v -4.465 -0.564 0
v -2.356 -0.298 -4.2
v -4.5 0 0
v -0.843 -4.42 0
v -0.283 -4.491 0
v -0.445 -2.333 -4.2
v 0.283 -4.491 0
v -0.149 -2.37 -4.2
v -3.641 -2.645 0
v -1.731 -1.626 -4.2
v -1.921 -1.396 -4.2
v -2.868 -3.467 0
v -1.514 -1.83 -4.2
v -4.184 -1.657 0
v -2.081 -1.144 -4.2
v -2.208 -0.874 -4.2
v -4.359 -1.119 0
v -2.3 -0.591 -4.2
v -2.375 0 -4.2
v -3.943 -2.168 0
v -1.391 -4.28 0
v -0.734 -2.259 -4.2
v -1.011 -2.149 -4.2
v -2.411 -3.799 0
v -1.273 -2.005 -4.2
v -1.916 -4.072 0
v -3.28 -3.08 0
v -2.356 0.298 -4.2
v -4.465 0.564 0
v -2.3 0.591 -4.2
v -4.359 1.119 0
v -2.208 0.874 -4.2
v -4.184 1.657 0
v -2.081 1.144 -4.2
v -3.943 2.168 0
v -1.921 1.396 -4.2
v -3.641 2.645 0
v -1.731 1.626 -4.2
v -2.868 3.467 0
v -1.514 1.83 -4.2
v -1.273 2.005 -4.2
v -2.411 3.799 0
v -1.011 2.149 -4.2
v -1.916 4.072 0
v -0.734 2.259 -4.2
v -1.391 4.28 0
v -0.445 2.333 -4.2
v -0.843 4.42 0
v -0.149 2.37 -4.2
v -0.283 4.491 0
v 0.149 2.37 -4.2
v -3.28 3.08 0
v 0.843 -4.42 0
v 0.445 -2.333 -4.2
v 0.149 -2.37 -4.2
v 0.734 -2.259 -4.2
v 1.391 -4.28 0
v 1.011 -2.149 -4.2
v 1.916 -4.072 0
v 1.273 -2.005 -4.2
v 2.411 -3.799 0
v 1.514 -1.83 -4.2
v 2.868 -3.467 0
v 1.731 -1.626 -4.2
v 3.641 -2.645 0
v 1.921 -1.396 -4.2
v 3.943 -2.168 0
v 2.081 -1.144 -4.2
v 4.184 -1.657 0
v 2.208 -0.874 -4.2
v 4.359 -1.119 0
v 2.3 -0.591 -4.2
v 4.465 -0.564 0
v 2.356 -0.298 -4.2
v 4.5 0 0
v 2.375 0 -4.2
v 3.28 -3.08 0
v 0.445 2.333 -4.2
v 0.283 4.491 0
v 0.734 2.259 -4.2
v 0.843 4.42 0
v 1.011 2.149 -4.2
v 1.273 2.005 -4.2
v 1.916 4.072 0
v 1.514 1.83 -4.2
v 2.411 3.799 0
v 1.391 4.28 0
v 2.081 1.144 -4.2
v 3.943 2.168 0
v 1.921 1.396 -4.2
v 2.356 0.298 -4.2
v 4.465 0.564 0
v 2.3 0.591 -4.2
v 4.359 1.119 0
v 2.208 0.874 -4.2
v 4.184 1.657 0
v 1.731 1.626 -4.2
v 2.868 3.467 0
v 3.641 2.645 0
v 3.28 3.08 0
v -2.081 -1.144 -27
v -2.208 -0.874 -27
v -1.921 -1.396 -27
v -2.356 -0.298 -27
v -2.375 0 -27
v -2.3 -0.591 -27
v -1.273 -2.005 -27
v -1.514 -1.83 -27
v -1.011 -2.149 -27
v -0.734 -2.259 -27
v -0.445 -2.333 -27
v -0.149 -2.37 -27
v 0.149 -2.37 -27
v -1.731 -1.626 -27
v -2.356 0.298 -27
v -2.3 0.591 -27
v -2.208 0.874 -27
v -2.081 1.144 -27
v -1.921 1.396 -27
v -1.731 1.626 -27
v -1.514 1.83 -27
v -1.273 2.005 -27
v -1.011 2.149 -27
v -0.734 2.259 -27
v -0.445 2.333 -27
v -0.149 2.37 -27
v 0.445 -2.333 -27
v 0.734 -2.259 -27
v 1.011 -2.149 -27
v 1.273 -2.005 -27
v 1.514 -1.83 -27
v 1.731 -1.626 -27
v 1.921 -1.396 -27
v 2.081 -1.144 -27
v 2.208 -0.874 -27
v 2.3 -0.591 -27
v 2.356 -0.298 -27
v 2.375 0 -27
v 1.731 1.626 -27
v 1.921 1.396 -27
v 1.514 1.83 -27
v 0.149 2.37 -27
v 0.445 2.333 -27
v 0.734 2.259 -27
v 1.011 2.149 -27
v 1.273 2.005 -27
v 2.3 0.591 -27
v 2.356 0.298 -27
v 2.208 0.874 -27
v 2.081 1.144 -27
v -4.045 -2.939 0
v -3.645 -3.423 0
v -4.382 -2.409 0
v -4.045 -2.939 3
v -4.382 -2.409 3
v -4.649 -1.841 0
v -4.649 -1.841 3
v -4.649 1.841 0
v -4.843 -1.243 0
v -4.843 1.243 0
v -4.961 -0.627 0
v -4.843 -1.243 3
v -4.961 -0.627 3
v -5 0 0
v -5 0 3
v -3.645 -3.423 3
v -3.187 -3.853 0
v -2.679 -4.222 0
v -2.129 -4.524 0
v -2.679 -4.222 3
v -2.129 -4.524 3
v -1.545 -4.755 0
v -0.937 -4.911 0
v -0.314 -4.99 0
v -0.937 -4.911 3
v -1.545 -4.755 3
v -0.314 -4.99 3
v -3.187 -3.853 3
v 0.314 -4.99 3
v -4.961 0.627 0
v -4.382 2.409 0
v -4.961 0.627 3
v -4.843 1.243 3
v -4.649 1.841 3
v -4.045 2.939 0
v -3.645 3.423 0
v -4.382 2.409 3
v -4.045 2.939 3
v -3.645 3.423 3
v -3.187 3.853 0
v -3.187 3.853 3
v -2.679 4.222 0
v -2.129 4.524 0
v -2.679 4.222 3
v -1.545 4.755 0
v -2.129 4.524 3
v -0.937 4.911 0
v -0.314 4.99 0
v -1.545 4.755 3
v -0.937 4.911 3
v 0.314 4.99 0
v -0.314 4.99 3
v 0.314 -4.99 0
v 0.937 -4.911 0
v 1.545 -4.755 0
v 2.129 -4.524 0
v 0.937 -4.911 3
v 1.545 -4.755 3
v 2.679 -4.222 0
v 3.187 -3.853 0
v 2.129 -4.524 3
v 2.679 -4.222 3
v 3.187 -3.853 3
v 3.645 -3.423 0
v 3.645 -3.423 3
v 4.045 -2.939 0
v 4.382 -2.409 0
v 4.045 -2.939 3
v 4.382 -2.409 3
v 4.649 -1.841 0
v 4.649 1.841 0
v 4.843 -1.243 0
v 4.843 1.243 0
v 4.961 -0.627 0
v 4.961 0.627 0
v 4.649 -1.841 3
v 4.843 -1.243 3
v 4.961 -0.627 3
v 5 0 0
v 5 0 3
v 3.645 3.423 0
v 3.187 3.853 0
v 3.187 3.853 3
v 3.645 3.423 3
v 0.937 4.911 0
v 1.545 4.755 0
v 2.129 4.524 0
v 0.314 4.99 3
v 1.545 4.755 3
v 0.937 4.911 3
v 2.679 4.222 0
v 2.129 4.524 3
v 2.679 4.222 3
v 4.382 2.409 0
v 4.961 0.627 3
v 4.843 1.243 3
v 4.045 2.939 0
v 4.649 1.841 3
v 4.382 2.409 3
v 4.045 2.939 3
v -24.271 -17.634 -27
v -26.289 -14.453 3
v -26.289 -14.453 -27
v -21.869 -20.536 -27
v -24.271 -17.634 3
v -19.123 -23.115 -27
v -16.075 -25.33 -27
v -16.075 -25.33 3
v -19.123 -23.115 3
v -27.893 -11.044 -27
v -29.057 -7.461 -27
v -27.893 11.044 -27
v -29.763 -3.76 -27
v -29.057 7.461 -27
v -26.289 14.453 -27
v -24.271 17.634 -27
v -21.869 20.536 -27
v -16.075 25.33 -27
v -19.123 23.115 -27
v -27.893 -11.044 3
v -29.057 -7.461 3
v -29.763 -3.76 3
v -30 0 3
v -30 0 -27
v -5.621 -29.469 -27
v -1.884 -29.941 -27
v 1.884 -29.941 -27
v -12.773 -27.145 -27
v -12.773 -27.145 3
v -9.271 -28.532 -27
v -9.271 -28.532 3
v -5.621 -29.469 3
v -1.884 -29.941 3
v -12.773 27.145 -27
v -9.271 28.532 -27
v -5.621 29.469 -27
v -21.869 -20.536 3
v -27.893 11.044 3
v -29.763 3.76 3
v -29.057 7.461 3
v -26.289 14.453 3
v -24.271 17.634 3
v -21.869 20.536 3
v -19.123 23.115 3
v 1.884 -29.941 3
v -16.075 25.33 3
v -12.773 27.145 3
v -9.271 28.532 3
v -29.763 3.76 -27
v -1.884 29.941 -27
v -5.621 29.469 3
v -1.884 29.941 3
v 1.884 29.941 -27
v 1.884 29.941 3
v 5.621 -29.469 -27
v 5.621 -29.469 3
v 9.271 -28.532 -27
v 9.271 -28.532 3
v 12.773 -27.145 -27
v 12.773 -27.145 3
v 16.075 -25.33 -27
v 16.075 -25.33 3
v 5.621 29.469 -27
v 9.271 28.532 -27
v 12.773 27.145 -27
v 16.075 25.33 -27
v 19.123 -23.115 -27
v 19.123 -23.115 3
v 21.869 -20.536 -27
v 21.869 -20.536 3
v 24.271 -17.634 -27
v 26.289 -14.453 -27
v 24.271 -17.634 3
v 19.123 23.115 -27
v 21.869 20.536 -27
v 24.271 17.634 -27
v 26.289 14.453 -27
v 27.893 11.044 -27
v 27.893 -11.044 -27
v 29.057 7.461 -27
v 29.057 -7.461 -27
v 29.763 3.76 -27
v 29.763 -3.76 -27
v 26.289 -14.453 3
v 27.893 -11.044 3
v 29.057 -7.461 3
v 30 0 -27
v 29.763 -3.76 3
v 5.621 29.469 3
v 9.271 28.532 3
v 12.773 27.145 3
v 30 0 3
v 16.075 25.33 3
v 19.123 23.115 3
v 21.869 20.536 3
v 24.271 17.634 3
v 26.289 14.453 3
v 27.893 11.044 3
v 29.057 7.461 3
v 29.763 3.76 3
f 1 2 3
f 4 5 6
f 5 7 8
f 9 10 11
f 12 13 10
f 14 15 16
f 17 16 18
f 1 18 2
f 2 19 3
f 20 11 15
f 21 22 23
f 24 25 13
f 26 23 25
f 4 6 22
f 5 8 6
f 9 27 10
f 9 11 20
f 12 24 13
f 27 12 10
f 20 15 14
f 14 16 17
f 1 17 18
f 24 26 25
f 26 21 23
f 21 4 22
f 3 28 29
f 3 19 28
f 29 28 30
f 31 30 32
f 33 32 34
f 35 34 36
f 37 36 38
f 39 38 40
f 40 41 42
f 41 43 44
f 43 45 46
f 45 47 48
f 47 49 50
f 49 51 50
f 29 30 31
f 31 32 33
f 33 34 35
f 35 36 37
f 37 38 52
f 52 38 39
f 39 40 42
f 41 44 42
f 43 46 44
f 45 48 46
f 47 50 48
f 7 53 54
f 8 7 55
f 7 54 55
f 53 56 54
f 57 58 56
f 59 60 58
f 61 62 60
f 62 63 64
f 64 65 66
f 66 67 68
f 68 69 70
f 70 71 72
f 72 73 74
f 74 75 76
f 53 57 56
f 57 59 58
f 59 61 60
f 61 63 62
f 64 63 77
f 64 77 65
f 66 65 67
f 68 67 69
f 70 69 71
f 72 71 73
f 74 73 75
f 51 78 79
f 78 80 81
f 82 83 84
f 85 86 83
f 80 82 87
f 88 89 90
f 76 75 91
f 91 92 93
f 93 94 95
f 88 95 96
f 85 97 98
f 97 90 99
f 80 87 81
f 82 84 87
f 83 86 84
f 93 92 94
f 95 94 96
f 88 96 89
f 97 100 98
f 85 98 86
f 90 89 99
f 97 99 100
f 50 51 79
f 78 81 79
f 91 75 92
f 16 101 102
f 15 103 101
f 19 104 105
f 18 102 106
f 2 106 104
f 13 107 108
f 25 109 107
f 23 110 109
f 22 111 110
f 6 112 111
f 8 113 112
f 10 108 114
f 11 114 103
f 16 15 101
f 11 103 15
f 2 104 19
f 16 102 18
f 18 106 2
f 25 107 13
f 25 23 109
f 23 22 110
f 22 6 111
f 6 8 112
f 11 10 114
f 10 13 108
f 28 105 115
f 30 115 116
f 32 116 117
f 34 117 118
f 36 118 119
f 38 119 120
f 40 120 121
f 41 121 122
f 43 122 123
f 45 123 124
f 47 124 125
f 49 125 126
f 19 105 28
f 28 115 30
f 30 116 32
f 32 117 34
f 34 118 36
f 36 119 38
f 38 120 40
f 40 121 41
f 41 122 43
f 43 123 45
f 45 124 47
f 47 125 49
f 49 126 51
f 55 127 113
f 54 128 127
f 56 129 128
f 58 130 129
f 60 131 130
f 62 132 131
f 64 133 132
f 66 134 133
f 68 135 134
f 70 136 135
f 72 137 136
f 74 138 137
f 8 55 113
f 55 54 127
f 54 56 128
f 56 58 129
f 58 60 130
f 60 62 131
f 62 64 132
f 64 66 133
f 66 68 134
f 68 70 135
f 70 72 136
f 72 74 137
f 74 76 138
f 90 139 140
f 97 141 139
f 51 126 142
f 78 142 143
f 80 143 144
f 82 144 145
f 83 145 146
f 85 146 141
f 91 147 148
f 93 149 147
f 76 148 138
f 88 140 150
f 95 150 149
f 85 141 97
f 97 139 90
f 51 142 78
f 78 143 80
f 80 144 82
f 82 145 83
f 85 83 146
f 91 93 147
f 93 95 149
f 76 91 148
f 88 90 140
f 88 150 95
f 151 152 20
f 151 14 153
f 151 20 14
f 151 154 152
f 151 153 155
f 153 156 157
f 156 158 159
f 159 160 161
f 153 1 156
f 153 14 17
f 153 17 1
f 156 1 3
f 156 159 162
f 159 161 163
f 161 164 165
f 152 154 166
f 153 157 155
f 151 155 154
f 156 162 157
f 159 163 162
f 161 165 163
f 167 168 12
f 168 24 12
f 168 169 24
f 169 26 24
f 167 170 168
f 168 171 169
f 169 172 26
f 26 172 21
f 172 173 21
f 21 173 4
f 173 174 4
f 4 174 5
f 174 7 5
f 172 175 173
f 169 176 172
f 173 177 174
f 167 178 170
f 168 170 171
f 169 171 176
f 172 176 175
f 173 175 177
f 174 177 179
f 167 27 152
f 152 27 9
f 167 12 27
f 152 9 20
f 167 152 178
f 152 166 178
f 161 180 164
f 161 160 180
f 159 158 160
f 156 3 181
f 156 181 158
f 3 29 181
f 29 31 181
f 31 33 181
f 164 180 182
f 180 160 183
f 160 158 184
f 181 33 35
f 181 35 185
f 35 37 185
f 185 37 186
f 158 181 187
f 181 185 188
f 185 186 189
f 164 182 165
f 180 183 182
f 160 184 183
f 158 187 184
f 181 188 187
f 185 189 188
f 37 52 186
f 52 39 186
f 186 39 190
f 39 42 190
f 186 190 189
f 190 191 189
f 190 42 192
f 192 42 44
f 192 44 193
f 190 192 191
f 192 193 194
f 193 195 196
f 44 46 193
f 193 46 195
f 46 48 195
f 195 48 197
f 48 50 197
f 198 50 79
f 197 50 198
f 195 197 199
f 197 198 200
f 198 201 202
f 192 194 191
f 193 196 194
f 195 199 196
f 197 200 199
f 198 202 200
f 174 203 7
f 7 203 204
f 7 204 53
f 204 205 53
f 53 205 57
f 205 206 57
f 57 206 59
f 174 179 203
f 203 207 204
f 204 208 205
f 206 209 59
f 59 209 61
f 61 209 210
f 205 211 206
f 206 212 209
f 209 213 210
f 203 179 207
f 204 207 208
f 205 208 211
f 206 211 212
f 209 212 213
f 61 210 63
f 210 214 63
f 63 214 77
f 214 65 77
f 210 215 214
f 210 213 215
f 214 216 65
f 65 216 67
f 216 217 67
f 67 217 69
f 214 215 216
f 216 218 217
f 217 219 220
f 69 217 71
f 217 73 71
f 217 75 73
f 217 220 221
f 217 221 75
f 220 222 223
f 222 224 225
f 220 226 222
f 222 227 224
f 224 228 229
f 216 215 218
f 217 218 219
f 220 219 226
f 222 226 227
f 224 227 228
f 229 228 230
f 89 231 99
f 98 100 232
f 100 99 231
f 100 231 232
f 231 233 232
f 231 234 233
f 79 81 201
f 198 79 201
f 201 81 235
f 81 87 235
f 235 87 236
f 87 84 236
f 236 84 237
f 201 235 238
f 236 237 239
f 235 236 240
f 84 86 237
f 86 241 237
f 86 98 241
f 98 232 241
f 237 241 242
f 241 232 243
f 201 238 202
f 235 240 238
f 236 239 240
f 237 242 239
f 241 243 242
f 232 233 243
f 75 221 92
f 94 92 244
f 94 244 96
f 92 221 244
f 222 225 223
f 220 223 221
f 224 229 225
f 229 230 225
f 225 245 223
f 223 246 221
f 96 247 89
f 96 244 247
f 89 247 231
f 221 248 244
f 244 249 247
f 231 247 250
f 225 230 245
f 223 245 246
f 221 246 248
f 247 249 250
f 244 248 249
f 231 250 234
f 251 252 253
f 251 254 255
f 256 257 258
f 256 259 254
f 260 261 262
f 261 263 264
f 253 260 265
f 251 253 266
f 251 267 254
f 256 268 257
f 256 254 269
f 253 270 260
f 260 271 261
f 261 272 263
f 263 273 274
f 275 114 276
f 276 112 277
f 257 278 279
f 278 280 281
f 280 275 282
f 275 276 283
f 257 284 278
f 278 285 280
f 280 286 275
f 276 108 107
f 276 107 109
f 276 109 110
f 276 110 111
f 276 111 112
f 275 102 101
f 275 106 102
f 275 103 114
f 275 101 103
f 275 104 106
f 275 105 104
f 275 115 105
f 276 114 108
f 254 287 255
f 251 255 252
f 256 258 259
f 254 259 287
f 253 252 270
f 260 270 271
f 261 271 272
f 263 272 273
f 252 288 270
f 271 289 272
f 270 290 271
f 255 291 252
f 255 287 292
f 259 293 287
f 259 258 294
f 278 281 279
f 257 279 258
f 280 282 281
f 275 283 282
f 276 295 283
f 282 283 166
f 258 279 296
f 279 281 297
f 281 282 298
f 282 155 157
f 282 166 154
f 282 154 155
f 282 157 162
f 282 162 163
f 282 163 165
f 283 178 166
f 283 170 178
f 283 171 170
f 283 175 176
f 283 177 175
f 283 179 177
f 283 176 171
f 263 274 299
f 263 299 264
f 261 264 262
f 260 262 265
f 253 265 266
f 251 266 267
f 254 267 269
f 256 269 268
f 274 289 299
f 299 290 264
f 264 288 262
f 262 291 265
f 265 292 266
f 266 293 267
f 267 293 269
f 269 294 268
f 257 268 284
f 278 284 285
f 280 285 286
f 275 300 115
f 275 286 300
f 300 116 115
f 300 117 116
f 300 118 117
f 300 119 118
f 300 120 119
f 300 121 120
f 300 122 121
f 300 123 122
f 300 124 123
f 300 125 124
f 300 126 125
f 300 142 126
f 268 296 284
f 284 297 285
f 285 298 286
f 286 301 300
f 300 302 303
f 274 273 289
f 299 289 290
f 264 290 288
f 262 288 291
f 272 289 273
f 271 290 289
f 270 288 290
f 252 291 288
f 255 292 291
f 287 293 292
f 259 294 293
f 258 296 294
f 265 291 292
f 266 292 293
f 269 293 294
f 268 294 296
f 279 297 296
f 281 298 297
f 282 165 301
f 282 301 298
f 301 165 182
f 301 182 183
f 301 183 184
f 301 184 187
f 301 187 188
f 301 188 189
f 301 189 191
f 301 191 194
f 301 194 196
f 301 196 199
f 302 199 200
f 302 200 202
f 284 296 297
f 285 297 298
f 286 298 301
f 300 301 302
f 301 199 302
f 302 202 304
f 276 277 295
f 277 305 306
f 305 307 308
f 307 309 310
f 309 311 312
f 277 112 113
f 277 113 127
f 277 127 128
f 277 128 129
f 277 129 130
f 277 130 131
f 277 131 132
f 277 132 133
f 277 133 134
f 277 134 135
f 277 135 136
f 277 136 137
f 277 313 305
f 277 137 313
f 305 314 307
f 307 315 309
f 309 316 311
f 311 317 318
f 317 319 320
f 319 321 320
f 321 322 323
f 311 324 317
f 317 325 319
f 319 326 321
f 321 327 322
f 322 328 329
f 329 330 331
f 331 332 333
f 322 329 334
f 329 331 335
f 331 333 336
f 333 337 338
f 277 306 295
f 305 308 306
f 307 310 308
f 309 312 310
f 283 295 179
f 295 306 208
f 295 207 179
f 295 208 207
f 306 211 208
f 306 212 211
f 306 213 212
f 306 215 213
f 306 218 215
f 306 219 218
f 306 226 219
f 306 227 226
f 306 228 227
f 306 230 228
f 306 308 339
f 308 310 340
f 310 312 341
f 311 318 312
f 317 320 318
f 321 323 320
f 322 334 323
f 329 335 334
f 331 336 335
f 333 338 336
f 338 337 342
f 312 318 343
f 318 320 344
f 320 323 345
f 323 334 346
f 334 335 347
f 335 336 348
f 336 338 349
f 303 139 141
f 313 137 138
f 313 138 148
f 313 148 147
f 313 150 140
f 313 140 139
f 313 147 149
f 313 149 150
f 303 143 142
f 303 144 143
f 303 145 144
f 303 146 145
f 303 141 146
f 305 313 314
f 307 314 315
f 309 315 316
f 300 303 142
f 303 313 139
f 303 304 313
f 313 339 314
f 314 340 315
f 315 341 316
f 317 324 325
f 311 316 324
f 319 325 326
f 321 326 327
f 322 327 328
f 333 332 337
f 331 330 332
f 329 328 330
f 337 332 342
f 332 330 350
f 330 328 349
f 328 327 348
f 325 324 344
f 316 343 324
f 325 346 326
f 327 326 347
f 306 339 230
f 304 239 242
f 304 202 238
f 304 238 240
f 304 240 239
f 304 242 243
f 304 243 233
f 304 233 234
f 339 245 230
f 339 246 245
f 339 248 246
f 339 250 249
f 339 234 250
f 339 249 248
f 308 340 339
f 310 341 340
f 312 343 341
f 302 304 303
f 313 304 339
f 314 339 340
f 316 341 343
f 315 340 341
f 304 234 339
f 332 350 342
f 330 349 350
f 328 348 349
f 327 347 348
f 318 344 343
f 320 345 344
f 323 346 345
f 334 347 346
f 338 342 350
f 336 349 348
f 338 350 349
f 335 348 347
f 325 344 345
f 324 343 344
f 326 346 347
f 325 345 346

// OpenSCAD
$fn = 50;

difference() {
	union() {
		translate(v = [0, 0, -27.0]) {
			cylinder(h = 30, r = 30.0);
		}
	}
	union() {
		translate(v = [0, 0, 0]) {
			rotate(a = [0, 0, 0]) {
				difference() {
					union() {
						translate(v = [0, 0, -30.0]) {
							cylinder(h = 30, r = 2.25);
						}
						translate(v = [0, 0, -4.2]) {
							cylinder(h = 4.2, r1 = 2.375, r2 = 4.5);
						}
						translate(v = [0, 0, -30.0]) {
							cylinder(h = 30, r = 2.375);
						}
						translate(v = [0, 0, -30.0]) {
							cylinder(h = 30, r = 2.25);
						}
					}
					union();
				}
			}
		}
		#cylinder(h = 3, r = 5.0);
	}
}
